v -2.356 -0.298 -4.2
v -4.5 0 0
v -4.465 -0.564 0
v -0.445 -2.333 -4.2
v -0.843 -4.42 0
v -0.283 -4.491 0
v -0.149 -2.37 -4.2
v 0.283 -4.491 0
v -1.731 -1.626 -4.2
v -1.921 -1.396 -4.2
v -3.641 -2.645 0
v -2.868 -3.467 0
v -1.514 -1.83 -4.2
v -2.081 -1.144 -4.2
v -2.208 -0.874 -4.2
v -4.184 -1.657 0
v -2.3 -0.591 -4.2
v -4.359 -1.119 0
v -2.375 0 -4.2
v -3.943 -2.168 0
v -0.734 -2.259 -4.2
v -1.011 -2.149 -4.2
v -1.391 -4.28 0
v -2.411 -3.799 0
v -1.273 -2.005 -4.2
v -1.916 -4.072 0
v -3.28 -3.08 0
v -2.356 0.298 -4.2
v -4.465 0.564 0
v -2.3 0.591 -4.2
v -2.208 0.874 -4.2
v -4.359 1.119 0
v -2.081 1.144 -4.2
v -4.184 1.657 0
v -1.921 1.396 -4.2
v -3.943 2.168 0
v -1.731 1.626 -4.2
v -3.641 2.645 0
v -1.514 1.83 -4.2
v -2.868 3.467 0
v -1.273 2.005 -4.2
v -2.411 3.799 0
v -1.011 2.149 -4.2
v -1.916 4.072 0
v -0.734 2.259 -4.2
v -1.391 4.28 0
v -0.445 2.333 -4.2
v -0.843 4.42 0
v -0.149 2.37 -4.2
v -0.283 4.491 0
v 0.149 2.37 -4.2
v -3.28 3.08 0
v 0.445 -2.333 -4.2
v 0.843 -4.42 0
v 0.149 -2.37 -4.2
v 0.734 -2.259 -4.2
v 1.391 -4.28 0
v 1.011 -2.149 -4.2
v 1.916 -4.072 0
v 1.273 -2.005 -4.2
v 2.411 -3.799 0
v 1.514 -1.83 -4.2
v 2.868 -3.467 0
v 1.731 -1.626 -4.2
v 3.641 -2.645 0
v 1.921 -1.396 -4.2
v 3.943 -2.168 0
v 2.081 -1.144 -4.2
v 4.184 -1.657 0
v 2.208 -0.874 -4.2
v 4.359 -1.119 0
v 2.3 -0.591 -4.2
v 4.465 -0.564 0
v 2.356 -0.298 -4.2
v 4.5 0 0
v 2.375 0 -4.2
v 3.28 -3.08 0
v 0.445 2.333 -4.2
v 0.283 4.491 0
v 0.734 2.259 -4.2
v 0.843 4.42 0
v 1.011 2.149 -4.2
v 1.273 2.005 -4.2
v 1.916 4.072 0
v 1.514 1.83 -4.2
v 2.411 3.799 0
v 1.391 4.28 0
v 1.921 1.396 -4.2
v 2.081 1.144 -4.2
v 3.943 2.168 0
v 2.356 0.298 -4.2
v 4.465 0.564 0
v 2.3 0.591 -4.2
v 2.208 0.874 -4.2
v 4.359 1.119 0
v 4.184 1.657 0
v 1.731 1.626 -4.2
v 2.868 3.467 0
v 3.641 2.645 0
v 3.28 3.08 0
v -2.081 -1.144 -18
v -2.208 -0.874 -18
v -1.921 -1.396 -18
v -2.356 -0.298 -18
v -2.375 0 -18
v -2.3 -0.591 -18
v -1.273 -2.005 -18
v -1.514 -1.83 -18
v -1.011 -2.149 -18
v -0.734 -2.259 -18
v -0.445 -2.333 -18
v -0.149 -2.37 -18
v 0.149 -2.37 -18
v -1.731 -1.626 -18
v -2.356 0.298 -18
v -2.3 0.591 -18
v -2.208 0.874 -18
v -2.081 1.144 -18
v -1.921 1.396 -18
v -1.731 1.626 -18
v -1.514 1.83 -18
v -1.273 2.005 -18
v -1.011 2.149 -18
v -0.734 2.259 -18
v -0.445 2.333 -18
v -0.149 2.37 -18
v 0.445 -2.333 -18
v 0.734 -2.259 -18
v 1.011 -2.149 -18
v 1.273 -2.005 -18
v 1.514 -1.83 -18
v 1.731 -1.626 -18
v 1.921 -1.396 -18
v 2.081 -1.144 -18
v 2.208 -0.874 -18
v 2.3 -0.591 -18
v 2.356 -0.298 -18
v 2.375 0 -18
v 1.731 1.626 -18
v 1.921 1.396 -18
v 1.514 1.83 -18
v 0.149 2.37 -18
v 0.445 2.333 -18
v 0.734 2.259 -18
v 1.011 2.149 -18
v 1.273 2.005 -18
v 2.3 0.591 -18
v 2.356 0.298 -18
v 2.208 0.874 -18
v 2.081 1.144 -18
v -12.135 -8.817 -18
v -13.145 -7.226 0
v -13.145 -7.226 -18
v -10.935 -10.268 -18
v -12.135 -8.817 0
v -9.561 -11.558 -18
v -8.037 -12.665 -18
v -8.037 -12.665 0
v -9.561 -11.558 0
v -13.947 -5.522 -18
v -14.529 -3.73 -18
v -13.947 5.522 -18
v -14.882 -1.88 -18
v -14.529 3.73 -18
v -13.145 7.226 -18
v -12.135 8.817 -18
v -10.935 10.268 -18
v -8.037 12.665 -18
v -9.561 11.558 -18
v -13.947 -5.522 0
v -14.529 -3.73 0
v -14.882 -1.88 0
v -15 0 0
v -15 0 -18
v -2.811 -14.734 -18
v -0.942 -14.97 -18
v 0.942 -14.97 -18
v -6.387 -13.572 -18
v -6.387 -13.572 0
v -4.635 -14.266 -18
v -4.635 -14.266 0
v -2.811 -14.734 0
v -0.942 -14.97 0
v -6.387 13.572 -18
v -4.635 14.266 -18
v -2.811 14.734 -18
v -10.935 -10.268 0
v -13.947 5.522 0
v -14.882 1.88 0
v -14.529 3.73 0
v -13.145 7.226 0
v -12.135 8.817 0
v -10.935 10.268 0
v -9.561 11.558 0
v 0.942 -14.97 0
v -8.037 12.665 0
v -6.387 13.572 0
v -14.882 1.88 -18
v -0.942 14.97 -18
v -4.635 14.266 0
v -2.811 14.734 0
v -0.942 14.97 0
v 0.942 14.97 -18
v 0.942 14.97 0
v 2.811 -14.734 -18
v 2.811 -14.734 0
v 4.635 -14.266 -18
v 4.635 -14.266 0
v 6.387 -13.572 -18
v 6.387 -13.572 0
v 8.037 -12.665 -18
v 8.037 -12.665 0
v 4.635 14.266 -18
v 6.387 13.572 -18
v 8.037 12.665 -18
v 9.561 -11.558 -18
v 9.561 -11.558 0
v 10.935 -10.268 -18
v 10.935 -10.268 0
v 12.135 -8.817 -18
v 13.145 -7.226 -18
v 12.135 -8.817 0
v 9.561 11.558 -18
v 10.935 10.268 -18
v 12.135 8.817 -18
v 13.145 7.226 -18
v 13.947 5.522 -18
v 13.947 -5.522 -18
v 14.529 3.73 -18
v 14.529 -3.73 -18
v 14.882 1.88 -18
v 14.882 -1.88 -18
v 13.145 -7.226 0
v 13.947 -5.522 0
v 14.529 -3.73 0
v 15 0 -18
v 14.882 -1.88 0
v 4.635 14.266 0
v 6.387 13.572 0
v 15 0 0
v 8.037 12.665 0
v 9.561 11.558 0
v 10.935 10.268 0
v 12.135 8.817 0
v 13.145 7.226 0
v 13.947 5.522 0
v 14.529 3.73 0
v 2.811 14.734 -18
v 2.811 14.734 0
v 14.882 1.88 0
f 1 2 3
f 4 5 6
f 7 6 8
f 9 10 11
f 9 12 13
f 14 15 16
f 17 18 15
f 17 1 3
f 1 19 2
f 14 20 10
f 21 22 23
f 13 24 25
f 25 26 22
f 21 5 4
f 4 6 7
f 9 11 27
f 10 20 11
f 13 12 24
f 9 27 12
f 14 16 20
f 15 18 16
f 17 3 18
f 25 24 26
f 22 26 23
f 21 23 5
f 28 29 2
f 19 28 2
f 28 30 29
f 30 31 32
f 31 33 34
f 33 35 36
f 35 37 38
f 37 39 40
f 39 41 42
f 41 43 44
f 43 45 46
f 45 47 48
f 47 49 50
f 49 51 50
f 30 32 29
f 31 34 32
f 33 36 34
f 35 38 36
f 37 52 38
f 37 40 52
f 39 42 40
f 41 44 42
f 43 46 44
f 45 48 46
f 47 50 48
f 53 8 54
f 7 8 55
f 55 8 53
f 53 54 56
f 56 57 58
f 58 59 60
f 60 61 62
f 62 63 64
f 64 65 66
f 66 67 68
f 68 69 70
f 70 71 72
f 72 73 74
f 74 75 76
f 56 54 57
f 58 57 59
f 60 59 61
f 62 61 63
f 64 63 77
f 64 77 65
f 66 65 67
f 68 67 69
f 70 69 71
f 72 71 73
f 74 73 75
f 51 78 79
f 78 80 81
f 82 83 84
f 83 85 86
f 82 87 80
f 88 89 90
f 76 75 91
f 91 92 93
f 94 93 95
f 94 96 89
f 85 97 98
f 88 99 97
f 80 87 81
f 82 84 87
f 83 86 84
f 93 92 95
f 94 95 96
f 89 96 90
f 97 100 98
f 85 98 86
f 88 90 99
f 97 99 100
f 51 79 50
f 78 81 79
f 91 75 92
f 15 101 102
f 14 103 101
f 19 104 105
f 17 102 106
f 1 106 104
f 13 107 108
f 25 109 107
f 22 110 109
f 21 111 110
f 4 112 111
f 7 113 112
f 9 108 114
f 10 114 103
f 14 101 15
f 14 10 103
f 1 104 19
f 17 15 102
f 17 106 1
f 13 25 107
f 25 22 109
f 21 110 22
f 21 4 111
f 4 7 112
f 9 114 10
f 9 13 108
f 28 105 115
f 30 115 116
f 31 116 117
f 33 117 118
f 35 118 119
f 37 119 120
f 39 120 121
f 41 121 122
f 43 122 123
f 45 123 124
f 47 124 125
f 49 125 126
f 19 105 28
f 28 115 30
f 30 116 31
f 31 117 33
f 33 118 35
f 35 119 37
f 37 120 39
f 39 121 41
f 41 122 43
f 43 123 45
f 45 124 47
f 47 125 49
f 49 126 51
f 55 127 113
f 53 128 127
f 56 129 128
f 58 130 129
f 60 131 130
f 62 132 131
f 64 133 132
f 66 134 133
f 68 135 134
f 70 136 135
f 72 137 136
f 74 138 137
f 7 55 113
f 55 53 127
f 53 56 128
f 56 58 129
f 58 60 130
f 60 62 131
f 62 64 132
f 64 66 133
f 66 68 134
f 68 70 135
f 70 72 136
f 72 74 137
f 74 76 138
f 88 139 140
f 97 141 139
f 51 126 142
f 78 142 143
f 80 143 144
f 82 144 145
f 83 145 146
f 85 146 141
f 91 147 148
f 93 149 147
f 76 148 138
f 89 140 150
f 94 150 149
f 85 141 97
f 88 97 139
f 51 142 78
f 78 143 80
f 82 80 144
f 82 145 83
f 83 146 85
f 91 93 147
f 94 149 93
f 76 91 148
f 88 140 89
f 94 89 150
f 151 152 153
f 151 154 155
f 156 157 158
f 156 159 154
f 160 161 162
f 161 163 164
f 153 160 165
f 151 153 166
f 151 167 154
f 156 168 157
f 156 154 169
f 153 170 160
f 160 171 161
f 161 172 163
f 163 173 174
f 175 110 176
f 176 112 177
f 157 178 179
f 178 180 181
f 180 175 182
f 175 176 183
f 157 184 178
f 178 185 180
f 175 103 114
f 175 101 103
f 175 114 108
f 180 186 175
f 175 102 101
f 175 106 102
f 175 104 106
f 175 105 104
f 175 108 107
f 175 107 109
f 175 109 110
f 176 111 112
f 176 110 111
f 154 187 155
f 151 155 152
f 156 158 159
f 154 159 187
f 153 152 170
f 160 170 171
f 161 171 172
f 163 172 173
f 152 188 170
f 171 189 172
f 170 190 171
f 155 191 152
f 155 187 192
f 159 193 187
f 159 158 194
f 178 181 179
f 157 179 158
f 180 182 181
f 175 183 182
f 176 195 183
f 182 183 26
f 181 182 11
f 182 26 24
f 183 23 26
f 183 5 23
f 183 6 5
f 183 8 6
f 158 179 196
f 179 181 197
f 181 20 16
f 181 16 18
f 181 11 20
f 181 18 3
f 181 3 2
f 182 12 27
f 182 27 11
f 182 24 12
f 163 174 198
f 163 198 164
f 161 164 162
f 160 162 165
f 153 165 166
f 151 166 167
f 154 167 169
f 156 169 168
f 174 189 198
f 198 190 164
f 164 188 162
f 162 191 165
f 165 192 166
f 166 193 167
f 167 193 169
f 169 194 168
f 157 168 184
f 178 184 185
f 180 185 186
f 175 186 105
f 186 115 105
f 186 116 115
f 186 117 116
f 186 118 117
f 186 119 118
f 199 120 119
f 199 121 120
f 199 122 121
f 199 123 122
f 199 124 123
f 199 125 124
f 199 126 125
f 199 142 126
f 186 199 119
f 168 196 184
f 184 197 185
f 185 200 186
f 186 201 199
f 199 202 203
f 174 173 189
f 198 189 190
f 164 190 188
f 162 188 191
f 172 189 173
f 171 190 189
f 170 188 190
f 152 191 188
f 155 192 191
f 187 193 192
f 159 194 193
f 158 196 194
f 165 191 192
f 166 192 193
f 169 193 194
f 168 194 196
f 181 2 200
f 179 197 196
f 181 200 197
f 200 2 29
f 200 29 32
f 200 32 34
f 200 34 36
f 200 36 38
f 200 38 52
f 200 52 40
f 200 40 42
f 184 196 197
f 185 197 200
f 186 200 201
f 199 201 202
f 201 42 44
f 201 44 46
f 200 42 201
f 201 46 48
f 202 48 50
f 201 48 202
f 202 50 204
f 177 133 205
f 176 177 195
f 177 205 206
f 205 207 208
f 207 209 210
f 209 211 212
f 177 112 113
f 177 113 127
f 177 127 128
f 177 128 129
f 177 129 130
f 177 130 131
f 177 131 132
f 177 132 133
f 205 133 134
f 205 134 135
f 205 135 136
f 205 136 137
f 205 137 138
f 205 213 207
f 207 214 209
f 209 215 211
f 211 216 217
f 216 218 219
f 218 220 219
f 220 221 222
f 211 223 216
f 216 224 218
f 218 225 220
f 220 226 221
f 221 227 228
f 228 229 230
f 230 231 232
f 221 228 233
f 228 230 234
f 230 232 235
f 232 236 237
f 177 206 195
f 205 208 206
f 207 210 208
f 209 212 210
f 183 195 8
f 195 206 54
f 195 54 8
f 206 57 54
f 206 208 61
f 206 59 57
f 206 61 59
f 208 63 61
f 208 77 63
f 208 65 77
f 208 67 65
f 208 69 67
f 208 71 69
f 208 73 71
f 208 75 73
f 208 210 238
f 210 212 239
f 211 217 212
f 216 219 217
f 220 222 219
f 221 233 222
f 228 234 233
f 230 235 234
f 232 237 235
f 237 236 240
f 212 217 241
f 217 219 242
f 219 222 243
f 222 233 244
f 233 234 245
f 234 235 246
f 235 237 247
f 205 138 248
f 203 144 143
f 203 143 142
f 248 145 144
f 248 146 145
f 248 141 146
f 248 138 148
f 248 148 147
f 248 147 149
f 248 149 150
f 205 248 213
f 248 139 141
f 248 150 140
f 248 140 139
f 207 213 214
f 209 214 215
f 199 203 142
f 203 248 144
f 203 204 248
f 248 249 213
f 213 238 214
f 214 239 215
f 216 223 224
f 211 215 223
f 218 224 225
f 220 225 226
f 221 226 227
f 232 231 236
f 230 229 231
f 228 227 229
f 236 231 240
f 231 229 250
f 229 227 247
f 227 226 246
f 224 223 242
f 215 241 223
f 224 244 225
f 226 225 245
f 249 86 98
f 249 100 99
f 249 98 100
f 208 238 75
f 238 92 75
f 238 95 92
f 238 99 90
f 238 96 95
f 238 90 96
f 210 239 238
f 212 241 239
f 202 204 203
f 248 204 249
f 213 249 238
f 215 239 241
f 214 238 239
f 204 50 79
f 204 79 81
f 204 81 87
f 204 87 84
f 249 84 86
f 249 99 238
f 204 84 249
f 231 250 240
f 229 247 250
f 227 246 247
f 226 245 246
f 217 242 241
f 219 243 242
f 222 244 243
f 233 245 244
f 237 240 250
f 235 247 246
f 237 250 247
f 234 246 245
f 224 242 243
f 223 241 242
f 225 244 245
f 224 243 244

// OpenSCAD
$fn = 50;

difference() {
	union() {
		translate(v = [0, 0, -18.0]) {
			cylinder(h = 18, r = 15.0);
		}
	}
	union() {
		translate(v = [0, 0, 0]) {
			rotate(a = [0, 0, 0]) {
				difference() {
					union() {
						translate(v = [0, 0, -21.0]) {
							cylinder(h = 21, r = 2.25);
						}
						translate(v = [0, 0, -4.2]) {
							cylinder(h = 4.2, r1 = 2.375, r2 = 4.5);
						}
						translate(v = [0, 0, -21.0]) {
							cylinder(h = 21, r = 2.375);
						}
						translate(v = [0, 0, -21.0]) {
							cylinder(h = 21, r = 2.25);
						}
					}
					union();
				}
			}
		}
	}
}
